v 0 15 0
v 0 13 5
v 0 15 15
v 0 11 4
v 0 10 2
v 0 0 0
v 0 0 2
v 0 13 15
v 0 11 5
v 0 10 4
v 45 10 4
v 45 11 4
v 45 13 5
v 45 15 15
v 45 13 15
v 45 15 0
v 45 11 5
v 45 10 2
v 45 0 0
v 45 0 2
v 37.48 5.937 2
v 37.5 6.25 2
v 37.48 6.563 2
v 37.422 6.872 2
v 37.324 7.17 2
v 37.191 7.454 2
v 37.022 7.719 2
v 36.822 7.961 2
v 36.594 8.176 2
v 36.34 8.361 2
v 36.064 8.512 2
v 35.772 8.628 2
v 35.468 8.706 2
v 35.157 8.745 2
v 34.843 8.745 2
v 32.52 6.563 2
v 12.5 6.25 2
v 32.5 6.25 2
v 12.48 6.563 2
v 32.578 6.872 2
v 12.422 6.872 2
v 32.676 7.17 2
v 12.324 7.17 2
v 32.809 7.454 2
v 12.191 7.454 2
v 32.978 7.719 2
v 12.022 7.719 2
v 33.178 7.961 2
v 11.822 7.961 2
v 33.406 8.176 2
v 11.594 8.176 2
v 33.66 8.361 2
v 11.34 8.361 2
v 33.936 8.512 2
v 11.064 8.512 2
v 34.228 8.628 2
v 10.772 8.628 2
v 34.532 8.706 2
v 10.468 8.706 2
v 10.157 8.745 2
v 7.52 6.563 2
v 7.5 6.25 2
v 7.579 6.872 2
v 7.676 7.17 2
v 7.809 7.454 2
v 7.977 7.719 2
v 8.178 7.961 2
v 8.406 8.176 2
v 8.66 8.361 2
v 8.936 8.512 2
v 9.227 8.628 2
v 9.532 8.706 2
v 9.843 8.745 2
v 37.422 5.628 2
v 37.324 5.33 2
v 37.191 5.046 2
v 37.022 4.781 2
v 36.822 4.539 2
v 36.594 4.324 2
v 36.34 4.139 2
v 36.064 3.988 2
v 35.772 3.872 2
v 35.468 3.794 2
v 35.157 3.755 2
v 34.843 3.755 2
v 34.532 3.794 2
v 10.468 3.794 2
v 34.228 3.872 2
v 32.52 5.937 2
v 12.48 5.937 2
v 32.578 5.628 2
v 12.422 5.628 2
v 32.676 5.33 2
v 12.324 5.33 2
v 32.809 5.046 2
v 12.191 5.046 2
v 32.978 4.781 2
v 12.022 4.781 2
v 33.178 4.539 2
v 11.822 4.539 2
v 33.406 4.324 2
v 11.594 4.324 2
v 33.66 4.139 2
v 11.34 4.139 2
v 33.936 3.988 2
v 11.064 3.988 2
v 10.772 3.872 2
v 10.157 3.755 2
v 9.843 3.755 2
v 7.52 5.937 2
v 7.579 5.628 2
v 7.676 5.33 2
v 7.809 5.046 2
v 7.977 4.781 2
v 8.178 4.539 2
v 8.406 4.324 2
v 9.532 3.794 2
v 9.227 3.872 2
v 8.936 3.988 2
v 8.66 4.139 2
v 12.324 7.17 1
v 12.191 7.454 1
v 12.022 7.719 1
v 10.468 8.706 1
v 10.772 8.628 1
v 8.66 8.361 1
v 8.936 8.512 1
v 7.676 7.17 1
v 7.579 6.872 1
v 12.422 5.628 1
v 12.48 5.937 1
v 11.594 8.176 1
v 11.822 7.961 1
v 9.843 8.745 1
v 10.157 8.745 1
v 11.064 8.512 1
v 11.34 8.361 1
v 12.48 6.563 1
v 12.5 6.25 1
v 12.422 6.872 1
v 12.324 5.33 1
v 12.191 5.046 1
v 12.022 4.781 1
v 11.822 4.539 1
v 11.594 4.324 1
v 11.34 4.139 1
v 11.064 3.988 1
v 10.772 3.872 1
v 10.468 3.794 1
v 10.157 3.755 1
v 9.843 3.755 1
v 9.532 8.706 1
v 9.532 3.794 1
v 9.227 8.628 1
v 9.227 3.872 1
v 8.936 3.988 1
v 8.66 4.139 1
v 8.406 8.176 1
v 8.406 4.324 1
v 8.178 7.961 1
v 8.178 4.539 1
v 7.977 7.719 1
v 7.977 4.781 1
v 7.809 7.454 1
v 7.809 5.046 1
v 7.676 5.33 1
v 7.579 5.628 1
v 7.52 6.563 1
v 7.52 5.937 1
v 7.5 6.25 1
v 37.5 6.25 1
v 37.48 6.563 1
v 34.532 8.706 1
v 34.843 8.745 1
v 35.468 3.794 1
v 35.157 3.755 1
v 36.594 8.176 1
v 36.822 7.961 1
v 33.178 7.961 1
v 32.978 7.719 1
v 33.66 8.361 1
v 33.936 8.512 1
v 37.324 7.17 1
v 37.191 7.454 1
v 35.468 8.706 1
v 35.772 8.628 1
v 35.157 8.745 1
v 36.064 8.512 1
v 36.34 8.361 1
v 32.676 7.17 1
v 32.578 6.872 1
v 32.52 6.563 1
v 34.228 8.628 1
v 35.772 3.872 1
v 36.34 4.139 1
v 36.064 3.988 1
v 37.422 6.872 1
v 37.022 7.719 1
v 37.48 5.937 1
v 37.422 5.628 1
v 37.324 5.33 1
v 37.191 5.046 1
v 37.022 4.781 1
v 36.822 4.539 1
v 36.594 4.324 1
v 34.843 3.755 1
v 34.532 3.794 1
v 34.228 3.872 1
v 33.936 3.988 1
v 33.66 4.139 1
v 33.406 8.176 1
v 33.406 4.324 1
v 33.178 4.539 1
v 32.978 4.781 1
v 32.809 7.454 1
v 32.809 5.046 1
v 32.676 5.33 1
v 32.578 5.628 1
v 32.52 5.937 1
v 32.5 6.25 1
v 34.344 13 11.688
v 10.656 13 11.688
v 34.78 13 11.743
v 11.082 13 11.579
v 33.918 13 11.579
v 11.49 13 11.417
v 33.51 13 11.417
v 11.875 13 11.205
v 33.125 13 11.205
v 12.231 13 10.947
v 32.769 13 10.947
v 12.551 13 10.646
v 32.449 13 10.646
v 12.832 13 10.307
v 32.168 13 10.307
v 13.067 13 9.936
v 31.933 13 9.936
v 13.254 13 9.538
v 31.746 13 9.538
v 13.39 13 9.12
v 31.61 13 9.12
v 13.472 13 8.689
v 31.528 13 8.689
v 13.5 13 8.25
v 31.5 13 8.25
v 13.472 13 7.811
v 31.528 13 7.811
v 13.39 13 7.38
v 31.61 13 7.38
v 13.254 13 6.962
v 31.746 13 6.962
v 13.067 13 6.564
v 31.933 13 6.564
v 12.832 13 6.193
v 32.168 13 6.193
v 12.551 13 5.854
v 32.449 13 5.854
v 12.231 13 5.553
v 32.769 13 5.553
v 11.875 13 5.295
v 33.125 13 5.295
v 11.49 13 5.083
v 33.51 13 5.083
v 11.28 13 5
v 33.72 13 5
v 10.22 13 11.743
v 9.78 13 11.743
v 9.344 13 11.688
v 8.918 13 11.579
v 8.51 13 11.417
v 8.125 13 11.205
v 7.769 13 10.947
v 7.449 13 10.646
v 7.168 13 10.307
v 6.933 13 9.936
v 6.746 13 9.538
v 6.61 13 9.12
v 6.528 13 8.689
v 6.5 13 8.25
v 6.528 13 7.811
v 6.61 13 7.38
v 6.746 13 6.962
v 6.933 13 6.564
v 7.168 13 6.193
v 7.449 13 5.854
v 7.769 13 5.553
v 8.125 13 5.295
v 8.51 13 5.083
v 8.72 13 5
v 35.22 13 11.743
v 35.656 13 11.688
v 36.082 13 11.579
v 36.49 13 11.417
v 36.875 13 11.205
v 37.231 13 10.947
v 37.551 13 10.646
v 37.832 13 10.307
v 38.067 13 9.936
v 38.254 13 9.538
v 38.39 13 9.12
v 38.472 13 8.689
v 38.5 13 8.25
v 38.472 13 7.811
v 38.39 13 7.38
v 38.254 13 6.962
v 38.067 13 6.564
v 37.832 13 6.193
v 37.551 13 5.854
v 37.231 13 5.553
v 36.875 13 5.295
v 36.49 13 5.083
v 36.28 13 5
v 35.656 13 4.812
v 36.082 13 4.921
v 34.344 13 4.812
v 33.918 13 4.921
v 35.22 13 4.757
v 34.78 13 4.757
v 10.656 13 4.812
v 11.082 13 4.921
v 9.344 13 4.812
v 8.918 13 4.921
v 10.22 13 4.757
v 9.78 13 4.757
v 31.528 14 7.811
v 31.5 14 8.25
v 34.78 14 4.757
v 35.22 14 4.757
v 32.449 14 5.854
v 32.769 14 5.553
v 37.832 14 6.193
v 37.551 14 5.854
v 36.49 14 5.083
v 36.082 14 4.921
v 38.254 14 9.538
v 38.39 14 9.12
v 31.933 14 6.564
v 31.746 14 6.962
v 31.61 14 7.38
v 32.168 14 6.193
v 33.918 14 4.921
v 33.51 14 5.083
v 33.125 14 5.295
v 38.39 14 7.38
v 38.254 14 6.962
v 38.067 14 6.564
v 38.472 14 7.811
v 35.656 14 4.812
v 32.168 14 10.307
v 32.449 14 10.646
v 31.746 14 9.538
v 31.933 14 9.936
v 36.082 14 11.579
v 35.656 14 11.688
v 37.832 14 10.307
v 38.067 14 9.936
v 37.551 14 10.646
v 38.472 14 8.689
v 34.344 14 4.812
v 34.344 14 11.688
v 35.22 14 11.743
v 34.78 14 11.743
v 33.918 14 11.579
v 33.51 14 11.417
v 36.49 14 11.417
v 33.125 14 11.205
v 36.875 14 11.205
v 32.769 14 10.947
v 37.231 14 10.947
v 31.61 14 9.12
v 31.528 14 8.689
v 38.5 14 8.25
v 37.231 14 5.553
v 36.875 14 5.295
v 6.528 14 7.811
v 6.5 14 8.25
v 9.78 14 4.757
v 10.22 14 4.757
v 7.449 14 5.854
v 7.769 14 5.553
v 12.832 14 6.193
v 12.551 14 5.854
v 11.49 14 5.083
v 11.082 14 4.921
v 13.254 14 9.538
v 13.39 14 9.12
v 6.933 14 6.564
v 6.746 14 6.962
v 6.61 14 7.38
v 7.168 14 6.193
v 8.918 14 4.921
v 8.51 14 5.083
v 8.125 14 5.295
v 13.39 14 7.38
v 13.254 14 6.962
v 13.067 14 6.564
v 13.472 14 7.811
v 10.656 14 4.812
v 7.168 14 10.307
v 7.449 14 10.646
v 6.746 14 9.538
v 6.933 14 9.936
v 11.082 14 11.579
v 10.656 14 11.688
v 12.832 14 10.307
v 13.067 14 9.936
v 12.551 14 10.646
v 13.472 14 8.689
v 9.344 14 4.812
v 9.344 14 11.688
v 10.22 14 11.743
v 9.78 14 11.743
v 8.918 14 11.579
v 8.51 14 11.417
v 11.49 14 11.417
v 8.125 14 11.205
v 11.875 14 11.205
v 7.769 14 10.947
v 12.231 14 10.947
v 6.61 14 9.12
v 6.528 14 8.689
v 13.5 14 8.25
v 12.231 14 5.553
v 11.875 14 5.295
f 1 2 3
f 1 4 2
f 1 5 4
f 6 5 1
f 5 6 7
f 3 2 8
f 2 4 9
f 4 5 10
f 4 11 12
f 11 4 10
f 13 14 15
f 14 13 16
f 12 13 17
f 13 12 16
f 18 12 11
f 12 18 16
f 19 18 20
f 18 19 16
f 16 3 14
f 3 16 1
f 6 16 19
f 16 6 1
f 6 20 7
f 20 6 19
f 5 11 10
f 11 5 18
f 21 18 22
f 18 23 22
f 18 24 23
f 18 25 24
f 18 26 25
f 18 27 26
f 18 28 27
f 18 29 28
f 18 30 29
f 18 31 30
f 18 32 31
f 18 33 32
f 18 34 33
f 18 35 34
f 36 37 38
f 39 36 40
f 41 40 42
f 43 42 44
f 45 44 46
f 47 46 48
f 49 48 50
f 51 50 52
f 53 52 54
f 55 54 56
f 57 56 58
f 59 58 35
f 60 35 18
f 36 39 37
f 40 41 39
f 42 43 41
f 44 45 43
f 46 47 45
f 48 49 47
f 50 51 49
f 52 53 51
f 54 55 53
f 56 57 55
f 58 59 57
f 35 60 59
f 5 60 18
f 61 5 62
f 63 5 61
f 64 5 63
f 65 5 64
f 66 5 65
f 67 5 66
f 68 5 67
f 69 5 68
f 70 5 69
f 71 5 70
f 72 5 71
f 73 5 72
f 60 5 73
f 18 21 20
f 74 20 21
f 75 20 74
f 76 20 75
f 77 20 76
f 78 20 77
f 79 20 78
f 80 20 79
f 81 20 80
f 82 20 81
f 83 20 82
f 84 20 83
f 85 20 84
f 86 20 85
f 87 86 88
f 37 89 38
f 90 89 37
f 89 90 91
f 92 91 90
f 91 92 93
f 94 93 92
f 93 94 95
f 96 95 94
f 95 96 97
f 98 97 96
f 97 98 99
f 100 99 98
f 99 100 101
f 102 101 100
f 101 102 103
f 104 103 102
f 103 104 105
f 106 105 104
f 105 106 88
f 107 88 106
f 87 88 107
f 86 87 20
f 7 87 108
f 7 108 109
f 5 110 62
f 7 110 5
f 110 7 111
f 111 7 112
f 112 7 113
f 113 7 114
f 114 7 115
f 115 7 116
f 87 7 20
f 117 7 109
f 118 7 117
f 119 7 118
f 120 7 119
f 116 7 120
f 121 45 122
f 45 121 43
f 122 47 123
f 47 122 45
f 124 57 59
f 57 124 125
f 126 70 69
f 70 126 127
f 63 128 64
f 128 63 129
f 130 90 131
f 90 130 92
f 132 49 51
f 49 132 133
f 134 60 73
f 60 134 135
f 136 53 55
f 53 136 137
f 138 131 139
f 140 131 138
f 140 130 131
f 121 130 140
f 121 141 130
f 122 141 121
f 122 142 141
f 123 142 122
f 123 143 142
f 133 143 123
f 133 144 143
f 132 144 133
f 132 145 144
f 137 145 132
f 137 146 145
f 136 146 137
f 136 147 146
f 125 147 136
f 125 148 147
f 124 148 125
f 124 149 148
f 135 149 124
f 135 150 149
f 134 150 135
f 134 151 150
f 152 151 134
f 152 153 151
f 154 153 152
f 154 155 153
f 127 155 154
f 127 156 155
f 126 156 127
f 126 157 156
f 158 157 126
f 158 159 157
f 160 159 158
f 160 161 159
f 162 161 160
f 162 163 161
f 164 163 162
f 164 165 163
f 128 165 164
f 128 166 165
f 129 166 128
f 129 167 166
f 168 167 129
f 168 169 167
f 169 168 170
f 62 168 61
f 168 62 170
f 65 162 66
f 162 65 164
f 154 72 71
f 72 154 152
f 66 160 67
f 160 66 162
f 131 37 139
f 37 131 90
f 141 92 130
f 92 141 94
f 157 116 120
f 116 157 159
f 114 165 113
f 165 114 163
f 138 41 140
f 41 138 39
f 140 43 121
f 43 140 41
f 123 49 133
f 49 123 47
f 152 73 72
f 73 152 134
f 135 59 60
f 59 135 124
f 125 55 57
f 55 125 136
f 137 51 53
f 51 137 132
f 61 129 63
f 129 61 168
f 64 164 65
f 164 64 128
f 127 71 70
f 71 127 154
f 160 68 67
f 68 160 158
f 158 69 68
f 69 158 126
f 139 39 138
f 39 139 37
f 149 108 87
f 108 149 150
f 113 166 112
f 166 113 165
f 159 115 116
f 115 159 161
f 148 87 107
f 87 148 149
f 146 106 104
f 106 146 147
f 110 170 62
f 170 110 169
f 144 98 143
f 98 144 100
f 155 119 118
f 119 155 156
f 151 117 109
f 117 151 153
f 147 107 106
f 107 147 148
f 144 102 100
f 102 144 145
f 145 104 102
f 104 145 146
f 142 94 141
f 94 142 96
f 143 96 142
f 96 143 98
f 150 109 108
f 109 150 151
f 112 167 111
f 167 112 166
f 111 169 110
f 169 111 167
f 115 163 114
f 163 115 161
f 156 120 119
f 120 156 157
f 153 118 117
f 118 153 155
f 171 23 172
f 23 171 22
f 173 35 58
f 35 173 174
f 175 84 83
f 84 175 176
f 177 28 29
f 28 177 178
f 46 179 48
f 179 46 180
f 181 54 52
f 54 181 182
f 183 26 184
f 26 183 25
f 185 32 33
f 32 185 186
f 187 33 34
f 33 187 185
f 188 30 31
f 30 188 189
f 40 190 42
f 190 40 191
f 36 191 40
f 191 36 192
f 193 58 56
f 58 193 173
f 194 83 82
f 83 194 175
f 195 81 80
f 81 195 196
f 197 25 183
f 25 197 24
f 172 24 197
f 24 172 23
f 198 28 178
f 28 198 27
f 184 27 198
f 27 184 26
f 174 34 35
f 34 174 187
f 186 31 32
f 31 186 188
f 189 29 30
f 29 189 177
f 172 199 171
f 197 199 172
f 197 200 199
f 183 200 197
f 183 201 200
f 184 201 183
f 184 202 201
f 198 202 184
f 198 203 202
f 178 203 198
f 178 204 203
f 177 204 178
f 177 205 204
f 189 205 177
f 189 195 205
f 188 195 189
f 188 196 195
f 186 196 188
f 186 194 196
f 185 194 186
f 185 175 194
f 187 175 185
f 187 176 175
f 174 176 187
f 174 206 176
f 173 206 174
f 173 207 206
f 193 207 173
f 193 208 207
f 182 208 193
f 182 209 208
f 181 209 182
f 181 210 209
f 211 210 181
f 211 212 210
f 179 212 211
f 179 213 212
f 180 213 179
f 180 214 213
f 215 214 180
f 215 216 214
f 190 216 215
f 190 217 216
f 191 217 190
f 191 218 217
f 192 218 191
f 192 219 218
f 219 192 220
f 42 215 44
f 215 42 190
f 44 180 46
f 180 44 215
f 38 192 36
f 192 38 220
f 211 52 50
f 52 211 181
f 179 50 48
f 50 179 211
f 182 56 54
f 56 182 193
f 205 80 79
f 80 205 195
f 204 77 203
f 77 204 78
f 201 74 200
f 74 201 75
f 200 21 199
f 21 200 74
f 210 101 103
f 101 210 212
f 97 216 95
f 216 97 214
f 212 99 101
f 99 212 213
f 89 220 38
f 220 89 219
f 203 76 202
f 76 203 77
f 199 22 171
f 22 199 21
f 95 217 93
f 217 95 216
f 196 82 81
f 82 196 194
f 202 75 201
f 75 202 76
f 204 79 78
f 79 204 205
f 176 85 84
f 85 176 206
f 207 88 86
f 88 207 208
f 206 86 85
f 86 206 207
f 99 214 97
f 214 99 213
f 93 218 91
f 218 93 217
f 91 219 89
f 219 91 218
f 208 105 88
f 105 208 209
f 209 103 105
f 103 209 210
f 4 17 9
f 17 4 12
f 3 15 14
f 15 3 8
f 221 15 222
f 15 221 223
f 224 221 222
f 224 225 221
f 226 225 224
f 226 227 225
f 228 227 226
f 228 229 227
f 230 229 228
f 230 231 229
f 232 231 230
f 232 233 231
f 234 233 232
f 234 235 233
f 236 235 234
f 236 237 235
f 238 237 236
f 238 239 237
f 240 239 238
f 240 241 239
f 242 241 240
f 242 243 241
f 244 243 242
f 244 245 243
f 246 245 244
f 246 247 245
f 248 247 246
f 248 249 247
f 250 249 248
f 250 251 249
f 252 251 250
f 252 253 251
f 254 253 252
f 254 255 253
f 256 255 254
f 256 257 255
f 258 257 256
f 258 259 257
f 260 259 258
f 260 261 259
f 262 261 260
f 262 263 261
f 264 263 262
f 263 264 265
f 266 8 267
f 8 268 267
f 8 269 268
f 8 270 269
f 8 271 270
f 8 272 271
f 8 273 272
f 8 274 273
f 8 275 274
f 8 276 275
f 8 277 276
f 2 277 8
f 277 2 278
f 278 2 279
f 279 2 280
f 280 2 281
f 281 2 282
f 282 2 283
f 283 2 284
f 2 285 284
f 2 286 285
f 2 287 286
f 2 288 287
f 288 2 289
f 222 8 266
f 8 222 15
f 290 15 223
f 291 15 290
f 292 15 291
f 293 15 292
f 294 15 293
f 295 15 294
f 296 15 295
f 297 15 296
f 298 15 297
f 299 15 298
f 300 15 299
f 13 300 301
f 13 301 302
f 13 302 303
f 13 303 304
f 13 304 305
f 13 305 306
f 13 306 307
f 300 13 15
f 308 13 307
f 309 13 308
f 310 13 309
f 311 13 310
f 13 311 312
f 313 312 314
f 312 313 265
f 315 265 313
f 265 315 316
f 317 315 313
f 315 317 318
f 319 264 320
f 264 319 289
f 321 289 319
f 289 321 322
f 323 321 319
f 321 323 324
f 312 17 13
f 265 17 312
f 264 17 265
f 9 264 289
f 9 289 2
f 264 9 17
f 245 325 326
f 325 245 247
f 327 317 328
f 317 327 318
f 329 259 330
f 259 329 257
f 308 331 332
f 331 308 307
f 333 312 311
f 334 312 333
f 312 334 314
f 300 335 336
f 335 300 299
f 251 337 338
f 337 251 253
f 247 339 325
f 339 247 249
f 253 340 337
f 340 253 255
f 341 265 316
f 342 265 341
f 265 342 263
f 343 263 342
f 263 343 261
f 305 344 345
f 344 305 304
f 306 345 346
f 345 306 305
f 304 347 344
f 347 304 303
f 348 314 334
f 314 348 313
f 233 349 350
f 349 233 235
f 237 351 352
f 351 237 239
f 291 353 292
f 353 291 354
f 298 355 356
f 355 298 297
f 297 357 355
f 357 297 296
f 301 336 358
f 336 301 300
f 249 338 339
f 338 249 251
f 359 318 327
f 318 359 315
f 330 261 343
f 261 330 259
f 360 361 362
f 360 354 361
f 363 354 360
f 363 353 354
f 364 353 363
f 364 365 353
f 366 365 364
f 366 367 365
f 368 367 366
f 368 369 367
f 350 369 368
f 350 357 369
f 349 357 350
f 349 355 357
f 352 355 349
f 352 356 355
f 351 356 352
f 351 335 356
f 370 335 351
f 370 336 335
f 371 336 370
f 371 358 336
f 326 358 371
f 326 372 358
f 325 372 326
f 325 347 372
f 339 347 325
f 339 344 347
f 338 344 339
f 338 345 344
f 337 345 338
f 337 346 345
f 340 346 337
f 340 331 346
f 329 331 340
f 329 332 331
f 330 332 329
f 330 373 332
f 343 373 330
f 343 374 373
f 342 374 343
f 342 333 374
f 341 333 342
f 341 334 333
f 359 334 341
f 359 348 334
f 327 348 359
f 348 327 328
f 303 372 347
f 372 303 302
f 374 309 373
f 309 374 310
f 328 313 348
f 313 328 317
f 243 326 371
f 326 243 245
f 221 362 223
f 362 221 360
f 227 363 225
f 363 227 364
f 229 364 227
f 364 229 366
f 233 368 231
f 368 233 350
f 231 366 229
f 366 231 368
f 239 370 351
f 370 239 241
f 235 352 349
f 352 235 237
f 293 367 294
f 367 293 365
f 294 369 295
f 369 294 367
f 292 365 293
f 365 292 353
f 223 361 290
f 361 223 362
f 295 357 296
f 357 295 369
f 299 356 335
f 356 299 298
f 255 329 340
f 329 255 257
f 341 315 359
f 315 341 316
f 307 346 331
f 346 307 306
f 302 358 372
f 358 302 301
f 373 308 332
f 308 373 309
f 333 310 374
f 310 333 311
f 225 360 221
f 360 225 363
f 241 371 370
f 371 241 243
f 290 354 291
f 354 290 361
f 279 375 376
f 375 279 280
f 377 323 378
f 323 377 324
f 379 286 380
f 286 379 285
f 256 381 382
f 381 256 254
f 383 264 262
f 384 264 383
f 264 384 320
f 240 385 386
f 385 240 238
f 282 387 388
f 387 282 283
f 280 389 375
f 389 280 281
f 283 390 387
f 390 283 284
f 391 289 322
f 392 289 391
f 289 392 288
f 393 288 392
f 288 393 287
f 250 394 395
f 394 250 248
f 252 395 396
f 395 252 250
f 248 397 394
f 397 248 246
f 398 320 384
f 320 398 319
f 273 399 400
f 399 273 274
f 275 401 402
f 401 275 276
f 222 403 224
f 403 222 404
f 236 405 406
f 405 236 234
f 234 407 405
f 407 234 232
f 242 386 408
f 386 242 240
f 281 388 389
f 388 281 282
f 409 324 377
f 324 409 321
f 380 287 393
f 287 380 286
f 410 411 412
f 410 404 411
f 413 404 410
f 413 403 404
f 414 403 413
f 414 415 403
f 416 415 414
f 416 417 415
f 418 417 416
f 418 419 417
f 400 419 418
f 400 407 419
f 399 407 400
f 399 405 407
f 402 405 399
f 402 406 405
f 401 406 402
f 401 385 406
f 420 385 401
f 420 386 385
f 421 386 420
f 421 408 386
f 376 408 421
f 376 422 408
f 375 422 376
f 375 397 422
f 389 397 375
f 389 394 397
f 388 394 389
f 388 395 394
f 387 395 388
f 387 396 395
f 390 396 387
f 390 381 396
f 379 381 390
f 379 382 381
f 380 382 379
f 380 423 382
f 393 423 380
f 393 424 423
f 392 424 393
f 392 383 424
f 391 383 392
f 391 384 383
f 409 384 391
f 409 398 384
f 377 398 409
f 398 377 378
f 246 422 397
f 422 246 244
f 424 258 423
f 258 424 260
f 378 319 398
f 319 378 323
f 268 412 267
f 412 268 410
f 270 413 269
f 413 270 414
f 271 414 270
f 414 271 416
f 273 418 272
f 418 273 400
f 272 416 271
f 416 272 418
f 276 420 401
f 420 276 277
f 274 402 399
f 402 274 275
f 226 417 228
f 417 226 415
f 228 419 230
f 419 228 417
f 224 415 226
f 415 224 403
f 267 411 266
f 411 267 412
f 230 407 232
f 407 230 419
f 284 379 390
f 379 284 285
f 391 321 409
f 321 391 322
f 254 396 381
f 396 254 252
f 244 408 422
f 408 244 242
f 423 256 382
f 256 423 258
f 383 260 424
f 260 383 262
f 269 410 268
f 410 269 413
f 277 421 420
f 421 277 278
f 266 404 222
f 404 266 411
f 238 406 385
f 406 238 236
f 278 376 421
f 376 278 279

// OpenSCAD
$fn=50;
union() {
    difference() {
        union() {
            cube([45,15,4]);
        };
        translate([0, 0, 2])
            cube([45, 10, 2]);
        translate([10, 6.25, 1])
            cylinder(r=2.5,h=3);
        translate([(45 - 10), 6.25, 1])
            cylinder(r=2.5,h=3);

    };
    translate([45,15,15]) {
        rotate([270,0,180]) {
            difference() {
                union() {
                    cube([45,15,4]);
                };
                translate([0, 0, 2])
                    cube([45, 10, 2]);
                translate([10, 6.75, 1])
                    cylinder(r=3.5,h=1);
                translate([(45 - 10), 6.75, 1])
                    cylinder(r=3.5,h=1);
            };
        };
    };
};
